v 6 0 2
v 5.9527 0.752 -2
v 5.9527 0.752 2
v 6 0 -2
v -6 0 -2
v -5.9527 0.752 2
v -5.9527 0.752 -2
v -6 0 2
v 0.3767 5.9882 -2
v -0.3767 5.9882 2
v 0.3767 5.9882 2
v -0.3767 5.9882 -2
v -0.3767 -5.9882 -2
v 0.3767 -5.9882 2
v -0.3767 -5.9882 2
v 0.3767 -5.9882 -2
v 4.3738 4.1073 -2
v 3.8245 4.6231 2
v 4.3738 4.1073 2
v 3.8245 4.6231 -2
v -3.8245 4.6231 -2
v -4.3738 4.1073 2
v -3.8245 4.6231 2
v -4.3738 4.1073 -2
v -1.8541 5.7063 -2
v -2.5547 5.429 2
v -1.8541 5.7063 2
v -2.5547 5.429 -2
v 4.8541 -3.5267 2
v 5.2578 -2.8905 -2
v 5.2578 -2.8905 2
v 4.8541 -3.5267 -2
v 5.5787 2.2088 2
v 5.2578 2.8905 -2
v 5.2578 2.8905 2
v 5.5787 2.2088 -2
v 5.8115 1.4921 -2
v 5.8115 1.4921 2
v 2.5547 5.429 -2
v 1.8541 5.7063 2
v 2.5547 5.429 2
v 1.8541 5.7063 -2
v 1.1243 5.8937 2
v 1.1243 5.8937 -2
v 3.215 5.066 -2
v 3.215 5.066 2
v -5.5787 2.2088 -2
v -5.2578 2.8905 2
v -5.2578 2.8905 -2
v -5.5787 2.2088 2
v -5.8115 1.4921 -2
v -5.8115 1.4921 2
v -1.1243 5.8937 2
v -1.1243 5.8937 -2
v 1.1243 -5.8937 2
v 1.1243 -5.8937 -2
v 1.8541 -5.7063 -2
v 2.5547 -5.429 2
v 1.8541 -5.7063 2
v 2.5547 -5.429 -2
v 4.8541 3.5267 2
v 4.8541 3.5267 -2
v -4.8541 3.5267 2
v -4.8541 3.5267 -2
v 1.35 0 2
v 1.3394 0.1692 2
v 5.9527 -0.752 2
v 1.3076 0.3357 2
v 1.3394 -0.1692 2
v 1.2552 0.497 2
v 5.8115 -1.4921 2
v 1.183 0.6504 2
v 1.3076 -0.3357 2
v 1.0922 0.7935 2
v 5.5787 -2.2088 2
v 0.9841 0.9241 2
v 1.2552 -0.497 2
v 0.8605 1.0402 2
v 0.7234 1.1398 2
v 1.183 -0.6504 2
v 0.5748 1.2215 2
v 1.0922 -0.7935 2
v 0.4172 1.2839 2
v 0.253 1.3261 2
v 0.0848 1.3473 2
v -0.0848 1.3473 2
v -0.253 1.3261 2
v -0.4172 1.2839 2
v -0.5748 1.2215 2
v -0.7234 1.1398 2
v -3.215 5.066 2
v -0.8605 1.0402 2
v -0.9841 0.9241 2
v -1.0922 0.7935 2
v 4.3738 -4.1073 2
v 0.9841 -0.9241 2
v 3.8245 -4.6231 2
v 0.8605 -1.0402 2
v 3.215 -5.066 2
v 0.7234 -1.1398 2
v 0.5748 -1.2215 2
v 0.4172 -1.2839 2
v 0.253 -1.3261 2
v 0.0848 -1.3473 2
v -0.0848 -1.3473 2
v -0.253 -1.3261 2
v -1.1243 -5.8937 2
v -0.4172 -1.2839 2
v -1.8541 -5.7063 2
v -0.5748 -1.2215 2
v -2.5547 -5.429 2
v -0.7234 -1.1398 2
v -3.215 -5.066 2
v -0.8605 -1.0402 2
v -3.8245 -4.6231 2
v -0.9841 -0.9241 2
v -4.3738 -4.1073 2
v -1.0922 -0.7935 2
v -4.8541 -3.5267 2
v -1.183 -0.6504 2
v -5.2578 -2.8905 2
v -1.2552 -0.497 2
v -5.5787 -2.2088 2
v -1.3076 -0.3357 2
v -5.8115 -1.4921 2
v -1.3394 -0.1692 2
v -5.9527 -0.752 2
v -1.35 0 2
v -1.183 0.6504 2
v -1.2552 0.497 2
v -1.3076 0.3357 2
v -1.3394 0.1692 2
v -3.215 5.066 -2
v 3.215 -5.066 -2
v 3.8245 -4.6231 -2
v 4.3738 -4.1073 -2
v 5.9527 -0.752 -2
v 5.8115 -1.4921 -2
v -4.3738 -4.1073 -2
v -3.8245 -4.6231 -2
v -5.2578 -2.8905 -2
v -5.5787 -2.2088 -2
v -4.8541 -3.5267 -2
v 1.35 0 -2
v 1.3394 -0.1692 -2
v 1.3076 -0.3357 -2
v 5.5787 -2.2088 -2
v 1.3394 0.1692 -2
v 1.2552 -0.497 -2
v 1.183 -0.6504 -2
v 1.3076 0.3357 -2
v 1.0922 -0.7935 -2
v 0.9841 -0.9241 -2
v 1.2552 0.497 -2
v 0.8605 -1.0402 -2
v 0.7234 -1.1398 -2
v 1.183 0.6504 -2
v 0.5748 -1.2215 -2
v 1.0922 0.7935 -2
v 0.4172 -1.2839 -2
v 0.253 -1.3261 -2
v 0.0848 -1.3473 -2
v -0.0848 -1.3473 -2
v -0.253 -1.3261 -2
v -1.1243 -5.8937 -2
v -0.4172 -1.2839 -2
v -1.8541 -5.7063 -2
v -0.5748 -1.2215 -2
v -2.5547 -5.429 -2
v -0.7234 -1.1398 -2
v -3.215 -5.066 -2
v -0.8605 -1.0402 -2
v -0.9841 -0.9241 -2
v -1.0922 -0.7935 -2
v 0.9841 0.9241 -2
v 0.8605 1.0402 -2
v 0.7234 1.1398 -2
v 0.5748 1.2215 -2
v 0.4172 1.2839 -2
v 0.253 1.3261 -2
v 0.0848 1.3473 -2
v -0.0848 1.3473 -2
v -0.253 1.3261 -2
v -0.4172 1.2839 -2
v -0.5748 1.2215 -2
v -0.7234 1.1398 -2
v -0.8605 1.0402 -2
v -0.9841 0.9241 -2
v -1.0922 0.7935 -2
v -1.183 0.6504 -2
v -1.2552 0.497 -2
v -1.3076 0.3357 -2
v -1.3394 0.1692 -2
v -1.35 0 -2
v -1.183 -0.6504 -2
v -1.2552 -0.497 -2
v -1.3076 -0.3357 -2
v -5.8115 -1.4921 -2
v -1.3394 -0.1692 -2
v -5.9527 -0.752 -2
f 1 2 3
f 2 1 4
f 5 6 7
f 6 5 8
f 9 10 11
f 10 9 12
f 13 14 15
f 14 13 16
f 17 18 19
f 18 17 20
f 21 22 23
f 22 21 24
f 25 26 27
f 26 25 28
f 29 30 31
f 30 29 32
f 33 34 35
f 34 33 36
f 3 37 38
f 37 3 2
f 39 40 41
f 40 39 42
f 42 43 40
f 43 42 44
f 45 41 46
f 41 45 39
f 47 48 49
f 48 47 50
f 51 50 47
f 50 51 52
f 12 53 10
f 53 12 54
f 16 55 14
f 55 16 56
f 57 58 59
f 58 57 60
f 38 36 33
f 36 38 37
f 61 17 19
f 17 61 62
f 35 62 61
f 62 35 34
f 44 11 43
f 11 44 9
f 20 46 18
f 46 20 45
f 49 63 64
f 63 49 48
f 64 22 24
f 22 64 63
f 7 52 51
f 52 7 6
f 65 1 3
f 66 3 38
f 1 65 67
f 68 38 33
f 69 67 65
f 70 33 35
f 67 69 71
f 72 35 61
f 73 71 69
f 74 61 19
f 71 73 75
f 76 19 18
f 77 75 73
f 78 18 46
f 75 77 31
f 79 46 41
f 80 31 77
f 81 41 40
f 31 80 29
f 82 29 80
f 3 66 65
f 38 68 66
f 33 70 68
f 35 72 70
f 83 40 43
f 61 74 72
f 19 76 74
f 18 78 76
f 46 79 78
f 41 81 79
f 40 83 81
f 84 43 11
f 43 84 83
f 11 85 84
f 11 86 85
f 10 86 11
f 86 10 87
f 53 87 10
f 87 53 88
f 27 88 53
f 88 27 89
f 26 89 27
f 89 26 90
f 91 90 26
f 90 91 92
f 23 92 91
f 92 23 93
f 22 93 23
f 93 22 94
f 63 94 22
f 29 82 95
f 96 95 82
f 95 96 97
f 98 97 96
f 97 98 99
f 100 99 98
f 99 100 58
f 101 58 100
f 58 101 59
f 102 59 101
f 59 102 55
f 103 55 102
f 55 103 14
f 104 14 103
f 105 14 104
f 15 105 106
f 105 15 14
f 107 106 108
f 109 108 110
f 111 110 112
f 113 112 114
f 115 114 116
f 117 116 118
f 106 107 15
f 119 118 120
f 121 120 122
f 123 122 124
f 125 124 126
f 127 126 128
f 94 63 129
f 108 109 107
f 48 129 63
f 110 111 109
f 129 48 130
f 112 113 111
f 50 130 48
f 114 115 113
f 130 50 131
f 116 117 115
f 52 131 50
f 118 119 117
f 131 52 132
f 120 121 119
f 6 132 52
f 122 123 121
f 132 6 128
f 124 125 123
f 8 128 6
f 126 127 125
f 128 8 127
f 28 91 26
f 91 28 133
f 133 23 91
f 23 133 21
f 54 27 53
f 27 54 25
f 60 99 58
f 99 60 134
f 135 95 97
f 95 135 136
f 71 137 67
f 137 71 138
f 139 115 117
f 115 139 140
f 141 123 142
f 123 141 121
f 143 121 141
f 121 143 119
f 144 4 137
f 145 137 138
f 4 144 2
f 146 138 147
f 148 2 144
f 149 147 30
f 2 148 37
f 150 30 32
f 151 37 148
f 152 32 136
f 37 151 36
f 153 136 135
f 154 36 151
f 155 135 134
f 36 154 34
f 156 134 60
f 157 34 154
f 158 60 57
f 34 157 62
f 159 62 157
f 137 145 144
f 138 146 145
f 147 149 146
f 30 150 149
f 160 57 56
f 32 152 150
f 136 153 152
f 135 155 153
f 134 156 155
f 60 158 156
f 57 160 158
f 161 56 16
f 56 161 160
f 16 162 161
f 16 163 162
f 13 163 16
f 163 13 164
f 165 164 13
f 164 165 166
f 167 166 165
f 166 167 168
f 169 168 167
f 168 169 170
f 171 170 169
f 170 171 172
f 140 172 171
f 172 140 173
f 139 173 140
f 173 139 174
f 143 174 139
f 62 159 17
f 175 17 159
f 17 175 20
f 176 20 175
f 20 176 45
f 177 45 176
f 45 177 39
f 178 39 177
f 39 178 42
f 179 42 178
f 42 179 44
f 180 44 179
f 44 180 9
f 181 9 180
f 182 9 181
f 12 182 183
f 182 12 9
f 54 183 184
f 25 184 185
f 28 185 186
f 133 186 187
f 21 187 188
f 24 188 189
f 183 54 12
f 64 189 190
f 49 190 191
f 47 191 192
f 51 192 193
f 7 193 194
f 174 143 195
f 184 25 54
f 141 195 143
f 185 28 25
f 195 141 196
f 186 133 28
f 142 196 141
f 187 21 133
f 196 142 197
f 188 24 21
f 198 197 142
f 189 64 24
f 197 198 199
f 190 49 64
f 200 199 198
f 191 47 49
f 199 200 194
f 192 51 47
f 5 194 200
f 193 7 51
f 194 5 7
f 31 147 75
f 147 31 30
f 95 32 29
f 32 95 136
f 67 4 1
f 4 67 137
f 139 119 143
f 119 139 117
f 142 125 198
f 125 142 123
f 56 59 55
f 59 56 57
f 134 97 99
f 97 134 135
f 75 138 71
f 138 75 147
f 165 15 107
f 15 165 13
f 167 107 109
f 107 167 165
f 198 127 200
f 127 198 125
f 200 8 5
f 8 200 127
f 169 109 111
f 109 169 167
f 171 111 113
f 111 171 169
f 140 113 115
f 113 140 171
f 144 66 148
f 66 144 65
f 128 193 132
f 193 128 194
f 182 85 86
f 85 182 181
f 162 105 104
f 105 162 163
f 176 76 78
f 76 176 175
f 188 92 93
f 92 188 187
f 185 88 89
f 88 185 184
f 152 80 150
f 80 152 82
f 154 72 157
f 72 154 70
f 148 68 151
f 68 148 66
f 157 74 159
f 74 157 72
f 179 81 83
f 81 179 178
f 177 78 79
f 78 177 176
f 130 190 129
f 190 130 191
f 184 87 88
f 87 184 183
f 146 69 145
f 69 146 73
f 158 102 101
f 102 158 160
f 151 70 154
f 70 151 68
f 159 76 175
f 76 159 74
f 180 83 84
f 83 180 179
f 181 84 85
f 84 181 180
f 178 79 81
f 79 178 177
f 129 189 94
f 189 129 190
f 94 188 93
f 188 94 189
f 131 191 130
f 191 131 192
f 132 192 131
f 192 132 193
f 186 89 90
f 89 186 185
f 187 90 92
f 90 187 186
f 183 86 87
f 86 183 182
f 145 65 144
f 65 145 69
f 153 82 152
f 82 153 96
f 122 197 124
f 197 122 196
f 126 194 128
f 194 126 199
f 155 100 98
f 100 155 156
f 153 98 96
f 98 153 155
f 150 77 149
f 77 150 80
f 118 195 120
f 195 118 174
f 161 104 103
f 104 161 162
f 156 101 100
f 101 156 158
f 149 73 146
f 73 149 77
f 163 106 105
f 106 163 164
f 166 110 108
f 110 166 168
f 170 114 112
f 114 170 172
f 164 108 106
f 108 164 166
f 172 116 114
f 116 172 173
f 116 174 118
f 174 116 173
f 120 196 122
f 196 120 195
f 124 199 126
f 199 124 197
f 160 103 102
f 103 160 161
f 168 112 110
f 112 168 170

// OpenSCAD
$fn = 50;


difference() {
	union() {
		translate(v = [0, 0, -2.0000000000]) {
			cylinder(h = 4, r = 6.0000000000);
		}
	}
	union() {
		translate(v = [0, 0, -100.0000000000]) {
			cylinder(h = 200, r = 1.3500000000);
		}
	}
}
